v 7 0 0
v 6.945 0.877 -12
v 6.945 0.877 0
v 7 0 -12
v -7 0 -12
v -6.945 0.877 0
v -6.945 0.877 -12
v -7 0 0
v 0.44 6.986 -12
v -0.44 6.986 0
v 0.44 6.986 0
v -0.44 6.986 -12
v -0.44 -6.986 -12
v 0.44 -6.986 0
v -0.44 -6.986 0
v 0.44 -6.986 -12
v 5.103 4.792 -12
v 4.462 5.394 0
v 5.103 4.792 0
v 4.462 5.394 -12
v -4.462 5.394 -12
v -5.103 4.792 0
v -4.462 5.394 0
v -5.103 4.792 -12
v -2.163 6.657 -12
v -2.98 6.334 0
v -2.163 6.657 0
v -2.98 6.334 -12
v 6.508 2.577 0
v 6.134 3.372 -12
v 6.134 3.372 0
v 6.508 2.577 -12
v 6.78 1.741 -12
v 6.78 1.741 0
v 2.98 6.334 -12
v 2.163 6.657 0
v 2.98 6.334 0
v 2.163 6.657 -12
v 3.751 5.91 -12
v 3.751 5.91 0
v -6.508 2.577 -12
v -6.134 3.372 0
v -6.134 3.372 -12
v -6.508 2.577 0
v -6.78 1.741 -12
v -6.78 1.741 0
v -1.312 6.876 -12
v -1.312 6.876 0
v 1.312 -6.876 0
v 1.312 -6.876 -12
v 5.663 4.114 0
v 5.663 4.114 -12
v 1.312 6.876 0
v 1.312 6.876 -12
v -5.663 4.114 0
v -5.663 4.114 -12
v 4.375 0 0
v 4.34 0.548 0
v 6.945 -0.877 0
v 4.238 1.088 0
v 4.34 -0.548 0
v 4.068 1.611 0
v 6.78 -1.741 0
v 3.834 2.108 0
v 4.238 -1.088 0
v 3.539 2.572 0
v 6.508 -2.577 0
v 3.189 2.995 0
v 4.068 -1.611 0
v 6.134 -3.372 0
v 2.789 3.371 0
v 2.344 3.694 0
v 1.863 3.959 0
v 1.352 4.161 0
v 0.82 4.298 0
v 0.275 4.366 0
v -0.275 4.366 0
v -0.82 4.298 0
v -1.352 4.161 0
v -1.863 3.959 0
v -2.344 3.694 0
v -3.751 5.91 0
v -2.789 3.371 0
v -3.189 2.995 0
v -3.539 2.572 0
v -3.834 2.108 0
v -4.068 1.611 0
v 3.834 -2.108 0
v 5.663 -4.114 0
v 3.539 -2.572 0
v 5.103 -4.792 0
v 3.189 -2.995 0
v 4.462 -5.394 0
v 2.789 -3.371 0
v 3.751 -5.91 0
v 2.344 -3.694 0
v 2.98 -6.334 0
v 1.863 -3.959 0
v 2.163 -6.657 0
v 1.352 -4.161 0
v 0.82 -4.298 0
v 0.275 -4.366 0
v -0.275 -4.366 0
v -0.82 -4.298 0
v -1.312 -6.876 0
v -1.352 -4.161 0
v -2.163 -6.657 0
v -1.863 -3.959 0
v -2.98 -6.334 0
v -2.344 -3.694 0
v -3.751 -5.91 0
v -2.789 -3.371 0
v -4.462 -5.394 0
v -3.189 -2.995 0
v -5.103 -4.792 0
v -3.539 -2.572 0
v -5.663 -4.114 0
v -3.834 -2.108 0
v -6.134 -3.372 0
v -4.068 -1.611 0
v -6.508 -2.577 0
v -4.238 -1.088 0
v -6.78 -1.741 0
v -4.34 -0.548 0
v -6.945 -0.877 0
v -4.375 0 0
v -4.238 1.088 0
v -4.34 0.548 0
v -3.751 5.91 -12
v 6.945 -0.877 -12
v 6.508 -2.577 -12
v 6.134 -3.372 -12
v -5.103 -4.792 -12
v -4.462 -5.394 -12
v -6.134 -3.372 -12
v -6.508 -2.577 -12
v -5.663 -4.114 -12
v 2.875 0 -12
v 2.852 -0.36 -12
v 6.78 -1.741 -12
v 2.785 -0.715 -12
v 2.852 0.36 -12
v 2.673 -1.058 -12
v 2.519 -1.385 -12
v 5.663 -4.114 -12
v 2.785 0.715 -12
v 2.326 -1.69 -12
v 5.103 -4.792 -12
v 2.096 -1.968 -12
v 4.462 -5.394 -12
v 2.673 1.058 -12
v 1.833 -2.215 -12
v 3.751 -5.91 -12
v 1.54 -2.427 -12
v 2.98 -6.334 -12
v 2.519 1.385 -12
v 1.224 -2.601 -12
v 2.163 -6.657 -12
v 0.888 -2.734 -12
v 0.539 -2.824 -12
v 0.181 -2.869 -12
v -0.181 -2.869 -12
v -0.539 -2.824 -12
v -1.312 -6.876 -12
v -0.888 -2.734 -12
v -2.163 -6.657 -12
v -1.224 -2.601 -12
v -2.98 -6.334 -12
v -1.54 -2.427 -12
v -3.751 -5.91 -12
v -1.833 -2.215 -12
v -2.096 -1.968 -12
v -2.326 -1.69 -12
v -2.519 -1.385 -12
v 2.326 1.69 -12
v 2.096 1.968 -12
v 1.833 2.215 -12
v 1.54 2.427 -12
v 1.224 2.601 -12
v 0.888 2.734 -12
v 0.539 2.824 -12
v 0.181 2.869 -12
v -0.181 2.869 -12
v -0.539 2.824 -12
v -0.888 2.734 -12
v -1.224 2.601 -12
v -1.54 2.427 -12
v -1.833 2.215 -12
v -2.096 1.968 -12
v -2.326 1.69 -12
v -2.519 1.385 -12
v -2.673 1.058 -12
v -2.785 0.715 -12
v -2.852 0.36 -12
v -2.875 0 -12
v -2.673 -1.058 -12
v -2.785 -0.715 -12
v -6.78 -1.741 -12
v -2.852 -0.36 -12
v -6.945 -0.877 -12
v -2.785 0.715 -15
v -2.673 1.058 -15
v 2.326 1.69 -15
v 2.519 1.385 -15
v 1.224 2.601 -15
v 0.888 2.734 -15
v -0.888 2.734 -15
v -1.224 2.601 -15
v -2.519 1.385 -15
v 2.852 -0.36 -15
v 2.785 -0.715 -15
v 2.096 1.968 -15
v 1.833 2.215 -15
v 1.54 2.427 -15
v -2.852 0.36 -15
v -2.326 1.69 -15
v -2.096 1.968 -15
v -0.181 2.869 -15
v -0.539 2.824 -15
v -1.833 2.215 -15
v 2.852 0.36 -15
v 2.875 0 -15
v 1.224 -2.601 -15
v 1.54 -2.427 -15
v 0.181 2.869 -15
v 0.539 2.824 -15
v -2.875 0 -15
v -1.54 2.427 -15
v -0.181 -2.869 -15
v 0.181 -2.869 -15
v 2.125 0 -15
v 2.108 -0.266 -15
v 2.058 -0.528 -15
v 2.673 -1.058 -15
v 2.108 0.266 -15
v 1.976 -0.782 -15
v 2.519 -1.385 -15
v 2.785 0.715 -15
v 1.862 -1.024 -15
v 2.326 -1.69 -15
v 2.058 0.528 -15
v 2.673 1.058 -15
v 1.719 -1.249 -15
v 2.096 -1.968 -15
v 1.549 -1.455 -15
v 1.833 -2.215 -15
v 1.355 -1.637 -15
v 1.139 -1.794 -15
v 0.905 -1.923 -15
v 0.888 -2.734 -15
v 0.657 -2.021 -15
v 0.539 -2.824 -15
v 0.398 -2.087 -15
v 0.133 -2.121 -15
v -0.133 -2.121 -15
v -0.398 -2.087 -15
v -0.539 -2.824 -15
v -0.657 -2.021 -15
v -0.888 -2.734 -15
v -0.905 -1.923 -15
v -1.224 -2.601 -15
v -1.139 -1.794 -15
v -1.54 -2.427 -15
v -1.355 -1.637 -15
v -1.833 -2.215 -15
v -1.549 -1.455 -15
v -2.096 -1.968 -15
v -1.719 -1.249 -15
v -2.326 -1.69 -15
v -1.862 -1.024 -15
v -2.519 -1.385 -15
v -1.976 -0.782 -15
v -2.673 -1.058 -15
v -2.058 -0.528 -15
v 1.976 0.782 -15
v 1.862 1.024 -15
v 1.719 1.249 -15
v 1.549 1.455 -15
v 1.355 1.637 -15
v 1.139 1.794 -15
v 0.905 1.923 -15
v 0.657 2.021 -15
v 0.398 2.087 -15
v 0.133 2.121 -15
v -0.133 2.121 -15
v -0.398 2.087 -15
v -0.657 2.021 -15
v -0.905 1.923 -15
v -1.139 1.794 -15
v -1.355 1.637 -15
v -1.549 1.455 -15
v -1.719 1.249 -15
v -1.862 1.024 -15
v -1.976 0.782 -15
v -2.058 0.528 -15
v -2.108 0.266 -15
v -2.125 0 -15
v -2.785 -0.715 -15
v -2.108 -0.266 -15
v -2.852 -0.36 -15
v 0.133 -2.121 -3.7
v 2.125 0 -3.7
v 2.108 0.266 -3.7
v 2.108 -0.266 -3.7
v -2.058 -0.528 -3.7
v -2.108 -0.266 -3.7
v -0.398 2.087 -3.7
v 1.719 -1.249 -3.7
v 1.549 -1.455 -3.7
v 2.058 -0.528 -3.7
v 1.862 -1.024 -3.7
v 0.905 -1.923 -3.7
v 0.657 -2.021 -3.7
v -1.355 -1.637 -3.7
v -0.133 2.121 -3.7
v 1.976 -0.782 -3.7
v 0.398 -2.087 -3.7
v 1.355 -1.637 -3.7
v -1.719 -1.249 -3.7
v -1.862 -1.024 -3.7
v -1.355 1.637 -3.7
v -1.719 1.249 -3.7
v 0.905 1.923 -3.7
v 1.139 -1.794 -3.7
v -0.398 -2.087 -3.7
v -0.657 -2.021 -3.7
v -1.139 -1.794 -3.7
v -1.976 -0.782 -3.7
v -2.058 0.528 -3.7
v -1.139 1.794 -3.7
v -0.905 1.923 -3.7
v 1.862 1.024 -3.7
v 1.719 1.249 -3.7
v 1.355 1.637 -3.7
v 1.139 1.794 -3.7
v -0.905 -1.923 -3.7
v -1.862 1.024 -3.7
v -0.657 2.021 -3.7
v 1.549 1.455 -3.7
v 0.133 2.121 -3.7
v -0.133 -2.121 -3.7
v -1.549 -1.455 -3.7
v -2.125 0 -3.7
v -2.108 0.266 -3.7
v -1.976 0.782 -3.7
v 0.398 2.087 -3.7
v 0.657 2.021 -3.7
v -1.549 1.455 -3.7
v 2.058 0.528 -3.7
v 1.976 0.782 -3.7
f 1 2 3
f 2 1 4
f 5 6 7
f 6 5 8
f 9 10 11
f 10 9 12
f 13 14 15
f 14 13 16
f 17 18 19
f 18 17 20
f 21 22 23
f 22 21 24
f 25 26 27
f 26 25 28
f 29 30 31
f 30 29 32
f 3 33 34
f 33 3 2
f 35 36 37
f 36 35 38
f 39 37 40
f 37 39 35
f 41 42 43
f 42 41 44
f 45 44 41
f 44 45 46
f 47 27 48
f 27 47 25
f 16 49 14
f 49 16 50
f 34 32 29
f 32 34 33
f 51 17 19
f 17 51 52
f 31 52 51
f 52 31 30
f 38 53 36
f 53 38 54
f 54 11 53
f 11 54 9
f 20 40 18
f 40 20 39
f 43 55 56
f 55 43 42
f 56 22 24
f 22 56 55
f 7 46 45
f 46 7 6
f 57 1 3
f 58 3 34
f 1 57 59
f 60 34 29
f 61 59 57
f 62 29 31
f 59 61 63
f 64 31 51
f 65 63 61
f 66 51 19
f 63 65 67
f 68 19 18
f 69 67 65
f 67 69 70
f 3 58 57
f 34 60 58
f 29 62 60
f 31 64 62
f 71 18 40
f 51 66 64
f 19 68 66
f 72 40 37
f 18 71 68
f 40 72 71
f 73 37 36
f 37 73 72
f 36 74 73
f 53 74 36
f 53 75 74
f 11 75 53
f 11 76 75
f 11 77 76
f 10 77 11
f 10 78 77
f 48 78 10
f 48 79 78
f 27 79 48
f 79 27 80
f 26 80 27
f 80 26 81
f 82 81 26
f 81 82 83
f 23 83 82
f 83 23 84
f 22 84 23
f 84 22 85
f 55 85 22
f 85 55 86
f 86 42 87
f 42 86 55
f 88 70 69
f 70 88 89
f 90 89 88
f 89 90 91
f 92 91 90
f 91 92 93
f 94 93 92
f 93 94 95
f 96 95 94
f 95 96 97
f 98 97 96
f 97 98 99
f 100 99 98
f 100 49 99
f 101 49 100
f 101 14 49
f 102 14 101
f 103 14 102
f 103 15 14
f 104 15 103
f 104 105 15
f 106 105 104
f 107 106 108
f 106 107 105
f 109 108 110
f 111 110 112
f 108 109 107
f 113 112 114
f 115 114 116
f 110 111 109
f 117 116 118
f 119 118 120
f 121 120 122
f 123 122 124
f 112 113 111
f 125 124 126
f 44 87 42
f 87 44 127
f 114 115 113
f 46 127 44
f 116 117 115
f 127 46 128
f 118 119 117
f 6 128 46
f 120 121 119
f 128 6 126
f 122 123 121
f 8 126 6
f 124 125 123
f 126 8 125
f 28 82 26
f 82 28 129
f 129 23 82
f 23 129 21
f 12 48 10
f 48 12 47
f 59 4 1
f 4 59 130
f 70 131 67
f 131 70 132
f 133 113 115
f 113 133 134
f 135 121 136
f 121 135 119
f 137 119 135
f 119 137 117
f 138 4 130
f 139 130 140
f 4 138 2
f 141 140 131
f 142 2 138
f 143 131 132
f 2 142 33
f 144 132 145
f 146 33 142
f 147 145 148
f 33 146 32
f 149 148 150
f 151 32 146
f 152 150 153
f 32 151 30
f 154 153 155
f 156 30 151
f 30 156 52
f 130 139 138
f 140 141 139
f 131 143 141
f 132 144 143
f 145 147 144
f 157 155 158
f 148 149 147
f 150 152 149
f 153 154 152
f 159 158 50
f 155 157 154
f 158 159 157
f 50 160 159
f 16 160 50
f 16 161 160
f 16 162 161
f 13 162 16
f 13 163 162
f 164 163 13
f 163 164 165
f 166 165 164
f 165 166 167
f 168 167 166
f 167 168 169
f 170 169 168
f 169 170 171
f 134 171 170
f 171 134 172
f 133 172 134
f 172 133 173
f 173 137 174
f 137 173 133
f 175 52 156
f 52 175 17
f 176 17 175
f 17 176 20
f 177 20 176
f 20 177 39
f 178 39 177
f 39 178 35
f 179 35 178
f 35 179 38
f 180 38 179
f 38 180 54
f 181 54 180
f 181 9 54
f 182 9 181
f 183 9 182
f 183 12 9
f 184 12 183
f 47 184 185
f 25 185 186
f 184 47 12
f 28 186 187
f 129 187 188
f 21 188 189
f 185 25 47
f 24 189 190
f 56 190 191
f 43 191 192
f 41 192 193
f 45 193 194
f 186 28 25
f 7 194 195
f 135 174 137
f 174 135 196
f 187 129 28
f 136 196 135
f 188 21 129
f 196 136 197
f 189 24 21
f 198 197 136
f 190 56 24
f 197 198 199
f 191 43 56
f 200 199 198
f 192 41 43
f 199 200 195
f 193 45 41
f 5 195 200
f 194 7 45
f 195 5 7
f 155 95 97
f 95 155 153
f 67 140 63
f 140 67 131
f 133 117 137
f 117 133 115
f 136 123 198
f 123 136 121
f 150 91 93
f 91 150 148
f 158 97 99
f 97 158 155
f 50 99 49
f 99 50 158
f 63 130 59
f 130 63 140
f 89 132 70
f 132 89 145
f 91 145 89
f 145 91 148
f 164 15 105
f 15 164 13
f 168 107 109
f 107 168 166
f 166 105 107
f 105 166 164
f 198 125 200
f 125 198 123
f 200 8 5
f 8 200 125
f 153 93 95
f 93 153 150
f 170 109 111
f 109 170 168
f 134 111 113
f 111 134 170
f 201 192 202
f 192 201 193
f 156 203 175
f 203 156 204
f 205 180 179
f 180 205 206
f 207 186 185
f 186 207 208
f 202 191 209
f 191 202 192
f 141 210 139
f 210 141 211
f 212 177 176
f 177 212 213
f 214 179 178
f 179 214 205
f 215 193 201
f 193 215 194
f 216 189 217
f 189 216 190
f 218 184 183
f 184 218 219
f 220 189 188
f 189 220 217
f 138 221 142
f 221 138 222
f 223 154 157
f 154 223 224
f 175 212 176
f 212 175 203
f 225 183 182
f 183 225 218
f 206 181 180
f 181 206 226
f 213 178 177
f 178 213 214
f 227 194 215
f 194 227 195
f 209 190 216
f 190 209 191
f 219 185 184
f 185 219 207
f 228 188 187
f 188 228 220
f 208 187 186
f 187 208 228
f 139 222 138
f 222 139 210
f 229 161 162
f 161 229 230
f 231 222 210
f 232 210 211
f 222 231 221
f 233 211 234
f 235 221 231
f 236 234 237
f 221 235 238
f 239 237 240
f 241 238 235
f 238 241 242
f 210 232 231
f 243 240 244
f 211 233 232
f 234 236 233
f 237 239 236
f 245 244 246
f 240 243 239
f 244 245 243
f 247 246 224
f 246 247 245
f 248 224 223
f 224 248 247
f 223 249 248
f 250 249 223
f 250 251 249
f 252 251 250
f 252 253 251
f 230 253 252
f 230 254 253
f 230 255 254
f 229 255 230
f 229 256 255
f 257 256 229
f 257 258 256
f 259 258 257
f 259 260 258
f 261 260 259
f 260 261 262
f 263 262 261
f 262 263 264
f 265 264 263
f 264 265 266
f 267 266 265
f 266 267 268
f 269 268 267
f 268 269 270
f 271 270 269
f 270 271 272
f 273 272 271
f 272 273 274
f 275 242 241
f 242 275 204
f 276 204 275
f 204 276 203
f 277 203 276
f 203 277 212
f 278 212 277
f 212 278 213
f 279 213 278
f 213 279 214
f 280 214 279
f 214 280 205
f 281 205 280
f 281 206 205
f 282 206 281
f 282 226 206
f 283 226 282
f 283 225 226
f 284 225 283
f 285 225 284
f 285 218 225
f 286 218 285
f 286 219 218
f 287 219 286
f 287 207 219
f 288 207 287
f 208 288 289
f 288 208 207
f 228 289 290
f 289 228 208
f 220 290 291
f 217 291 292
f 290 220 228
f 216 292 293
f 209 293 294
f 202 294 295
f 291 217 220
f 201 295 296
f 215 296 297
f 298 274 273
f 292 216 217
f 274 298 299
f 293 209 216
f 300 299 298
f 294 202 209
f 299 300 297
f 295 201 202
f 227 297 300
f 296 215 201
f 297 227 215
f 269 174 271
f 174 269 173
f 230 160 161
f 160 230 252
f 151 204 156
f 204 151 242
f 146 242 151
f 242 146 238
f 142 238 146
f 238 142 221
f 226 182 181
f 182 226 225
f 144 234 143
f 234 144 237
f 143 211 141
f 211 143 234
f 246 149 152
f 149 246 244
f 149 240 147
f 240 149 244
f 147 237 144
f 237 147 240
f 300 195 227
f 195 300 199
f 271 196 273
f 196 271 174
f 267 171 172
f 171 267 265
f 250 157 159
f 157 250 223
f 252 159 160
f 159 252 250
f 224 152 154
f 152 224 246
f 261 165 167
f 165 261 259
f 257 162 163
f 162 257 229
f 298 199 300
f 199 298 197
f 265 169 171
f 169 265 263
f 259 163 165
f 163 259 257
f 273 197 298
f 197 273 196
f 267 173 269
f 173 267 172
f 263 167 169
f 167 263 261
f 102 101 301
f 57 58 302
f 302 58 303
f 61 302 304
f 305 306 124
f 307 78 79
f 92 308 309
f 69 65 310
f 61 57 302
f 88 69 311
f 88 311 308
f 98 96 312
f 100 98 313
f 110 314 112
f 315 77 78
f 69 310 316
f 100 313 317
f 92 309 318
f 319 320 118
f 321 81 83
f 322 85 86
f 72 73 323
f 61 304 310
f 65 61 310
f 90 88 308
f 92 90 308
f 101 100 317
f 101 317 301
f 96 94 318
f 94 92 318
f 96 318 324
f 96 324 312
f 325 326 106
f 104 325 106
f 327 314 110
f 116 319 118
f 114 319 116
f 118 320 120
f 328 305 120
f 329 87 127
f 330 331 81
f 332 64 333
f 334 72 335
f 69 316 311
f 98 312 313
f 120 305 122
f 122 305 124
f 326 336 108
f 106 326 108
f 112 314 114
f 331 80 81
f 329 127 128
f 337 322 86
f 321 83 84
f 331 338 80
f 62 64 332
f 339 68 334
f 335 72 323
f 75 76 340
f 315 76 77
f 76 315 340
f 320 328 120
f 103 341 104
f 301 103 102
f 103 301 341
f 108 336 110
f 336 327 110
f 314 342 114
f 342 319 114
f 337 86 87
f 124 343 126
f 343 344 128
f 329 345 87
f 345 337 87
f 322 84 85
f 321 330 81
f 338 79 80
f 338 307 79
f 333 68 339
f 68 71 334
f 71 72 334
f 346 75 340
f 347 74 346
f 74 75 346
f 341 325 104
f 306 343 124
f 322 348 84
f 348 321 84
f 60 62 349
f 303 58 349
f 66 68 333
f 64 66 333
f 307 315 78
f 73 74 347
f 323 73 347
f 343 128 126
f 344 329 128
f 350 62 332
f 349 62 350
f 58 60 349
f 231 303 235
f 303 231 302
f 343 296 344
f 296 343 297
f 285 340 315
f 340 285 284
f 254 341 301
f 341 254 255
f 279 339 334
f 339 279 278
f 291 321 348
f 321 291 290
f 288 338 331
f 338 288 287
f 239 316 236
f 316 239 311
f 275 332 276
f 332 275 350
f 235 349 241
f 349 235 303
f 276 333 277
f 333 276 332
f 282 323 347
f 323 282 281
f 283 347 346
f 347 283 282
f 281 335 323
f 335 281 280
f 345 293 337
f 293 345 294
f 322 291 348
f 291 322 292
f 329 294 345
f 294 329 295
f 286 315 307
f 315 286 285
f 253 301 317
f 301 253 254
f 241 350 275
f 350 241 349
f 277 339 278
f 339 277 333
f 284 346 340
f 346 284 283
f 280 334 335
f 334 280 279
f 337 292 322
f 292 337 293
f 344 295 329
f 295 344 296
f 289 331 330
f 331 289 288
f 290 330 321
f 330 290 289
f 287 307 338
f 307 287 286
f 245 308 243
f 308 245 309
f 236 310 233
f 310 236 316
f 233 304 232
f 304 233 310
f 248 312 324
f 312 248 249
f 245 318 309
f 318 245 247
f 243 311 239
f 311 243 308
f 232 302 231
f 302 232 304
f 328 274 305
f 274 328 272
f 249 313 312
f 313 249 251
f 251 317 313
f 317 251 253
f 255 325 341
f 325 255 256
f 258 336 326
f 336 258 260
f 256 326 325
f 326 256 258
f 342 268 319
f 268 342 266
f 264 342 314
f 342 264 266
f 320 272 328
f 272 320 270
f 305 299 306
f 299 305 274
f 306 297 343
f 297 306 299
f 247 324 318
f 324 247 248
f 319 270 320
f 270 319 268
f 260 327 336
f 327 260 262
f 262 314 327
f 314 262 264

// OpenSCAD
$fn = 50;


difference() {
	union() {
		translate(v = [0, 0, -12.0000000000]) {
			cylinder(h = 12, r = 7.0000000000);
		}
		translate(v = [0, 0, -15.0000000000]) {
			cylinder(h = 15, r = 2.8750000000);
		}
	}
	union() {
		translate(v = [0, 0, 0]) {
			rotate(a = [0, 0, 0]) {
				difference() {
					union() {
						translate(v = [0, 0, -15.0000000000]) {
							cylinder(h = 15, r = 2.0000000000);
						}
						translate(v = [0, 0, -3.7000000000]) {
							cylinder(h = 3.7000000000, r1 = 2.1250000000, r2 = 4.3750000000);
						}
						translate(v = [0, 0, -15.0000000000]) {
							cylinder(h = 15, r = 2.1250000000);
						}
						translate(v = [0, 0, -15.0000000000]) {
							cylinder(h = 15, r = 2.0000000000);
						}
					}
					union();
				}
			}
		}
	}
}
